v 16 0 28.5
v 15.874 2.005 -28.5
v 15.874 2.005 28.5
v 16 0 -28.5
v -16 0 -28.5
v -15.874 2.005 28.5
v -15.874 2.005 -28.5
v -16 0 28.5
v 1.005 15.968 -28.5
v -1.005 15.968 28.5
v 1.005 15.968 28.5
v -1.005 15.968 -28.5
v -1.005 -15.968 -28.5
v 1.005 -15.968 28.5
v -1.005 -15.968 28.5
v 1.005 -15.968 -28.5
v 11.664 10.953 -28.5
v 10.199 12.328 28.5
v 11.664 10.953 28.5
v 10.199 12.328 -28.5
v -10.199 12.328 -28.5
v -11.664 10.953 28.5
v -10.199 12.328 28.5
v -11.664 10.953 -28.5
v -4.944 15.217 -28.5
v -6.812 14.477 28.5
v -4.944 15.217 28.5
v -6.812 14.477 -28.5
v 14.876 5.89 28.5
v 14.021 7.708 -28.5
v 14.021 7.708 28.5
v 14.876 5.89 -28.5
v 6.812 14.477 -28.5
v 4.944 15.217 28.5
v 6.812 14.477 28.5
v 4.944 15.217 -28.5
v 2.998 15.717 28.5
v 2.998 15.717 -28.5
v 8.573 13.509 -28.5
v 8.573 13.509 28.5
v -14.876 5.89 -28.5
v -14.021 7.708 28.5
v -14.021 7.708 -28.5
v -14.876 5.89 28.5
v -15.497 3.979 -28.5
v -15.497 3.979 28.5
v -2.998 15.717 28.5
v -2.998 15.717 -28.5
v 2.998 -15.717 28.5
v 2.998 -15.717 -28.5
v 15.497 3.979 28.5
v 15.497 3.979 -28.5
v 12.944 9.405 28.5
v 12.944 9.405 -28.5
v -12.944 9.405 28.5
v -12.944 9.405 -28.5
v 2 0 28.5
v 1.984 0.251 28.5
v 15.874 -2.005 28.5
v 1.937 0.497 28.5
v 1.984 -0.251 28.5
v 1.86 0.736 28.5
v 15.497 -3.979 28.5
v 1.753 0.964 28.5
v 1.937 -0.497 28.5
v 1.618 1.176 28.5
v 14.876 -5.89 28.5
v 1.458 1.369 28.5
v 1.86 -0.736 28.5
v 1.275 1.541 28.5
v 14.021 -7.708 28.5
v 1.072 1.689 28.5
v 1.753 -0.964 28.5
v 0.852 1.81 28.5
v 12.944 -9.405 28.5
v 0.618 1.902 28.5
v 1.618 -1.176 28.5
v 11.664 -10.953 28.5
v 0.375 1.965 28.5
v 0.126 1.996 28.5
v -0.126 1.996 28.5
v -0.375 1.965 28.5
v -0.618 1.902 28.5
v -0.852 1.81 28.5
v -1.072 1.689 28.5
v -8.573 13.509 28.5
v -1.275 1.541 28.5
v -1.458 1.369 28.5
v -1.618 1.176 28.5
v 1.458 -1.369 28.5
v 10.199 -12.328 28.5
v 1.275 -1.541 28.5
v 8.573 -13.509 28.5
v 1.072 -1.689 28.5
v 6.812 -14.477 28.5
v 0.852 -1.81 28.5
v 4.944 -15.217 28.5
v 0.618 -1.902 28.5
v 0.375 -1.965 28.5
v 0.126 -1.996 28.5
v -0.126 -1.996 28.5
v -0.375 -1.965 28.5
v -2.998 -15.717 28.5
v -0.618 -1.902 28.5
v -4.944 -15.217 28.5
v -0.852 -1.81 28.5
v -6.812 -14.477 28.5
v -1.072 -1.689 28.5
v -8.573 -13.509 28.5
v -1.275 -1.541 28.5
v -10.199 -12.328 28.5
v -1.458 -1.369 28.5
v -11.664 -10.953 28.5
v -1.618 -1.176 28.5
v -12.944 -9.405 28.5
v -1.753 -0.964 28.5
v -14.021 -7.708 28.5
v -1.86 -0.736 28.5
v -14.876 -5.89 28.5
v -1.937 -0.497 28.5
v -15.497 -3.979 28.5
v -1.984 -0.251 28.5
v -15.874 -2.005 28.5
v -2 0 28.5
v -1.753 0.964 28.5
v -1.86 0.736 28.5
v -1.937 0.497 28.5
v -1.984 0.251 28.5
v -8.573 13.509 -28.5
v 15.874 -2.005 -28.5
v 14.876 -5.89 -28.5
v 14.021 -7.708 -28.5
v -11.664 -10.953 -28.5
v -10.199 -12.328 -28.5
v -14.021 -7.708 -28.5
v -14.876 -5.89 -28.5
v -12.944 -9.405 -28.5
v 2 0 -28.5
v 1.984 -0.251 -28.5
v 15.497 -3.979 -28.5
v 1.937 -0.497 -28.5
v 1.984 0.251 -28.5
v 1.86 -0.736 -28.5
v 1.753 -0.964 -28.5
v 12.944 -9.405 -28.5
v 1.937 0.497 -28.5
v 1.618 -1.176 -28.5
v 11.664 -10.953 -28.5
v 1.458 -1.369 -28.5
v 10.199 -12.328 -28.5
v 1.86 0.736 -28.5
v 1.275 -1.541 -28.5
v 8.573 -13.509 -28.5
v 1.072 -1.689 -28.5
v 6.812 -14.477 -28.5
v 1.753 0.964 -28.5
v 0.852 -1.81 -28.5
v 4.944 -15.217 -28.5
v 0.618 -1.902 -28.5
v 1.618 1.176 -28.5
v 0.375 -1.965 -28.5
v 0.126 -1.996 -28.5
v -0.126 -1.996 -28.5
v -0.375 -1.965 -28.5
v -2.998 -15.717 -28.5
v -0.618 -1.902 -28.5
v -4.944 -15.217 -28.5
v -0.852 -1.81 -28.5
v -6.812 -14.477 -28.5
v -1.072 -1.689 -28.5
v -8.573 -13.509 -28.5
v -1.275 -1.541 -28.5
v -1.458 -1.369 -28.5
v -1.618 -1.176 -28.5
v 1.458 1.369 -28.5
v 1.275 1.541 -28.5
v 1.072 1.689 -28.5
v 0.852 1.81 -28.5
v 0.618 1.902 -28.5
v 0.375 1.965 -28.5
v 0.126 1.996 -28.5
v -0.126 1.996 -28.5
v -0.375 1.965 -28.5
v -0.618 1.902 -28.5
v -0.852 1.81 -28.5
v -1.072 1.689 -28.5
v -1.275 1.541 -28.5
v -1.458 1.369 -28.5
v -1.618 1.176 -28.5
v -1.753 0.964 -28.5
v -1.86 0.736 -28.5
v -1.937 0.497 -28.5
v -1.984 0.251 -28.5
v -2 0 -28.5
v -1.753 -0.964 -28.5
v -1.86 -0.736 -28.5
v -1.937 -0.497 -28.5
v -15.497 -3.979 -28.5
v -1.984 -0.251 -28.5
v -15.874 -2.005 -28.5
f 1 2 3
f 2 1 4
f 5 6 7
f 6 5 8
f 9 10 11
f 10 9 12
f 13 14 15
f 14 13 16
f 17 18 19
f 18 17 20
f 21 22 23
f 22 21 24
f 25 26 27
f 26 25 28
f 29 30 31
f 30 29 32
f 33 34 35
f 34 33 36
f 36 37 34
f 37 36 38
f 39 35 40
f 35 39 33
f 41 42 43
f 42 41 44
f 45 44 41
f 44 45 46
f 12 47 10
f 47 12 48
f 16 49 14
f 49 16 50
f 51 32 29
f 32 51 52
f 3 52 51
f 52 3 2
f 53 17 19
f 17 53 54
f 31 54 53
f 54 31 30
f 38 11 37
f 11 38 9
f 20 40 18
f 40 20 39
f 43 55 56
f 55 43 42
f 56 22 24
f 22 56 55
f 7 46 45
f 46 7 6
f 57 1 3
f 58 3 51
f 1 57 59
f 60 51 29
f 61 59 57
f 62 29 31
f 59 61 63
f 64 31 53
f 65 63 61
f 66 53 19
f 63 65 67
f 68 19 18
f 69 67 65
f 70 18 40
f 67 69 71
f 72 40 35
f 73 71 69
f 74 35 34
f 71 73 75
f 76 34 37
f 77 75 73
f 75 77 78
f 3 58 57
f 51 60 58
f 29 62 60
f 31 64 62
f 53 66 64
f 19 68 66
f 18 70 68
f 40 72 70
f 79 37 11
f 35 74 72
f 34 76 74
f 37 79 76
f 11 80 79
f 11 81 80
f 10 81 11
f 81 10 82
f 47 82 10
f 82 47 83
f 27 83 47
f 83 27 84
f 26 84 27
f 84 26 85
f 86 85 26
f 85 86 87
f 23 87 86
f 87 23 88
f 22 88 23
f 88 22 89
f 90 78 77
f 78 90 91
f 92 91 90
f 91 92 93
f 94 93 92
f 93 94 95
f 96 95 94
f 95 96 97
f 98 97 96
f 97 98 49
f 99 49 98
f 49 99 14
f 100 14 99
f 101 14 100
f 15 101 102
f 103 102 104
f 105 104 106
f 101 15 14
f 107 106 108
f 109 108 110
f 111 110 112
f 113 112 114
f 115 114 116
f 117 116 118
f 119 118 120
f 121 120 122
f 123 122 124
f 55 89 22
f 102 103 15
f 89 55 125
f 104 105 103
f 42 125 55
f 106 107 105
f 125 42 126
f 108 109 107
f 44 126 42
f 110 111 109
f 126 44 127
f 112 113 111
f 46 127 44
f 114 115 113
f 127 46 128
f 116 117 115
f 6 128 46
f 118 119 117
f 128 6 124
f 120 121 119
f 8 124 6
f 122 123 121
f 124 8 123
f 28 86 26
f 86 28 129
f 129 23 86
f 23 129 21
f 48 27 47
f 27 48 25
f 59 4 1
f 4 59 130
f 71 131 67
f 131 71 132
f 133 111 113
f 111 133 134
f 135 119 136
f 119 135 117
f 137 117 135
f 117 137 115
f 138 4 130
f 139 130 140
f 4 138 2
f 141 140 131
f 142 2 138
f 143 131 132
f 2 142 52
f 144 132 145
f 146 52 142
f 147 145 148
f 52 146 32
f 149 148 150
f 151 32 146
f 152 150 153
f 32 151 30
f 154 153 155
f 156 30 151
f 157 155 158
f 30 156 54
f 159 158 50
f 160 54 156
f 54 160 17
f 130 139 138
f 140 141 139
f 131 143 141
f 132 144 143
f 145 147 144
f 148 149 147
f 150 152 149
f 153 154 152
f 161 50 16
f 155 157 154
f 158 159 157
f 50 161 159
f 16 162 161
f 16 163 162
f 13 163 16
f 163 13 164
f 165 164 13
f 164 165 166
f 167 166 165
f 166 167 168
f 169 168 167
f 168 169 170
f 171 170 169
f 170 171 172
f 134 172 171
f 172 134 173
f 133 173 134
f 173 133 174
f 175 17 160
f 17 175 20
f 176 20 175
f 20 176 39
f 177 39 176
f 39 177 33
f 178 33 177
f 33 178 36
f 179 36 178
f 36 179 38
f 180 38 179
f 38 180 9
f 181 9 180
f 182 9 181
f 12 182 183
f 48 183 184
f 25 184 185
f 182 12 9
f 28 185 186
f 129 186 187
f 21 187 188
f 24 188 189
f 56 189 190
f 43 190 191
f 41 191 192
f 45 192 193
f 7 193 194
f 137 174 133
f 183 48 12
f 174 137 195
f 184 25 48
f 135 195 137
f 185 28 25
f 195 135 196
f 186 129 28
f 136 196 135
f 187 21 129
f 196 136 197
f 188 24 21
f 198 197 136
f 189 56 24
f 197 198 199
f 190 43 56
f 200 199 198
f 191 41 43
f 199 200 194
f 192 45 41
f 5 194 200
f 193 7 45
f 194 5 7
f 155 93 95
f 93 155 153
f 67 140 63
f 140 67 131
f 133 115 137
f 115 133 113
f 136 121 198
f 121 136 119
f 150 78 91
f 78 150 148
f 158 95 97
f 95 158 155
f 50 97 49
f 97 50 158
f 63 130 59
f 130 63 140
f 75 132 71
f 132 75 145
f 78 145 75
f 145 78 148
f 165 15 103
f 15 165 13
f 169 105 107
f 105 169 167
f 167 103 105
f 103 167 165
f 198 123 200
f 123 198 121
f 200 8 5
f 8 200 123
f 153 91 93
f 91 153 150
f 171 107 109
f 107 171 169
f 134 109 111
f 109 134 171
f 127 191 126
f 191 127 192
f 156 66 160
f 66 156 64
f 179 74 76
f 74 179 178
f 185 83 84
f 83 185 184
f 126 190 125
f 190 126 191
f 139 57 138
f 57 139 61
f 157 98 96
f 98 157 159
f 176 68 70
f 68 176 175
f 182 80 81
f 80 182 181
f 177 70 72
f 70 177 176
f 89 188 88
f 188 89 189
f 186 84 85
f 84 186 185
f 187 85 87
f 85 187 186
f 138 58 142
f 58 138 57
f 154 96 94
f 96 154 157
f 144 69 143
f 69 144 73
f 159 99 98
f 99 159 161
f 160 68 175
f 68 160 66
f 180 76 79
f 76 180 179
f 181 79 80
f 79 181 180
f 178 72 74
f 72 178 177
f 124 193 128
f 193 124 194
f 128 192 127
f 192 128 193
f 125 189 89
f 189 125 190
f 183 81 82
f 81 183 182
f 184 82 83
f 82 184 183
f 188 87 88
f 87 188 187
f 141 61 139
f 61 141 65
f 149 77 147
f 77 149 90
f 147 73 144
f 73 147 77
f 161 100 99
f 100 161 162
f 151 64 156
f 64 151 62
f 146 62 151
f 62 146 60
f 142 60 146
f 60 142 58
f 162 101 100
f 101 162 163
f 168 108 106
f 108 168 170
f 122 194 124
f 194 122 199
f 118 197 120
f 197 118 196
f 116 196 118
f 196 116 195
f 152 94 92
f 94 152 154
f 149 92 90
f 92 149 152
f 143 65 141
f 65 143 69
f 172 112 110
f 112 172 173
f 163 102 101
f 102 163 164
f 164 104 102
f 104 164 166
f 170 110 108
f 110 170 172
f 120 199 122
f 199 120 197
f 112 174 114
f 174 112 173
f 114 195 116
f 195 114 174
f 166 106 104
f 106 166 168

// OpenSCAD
$fn = 50;


difference() {
	union() {
		translate(v = [0, 0, -28.5000000000]) {
			cylinder(h = 57, r = 16.0000000000);
		}
	}
	union() {
		translate(v = [0, 0, -100.0000000000]) {
			cylinder(h = 200, r = 2);
		}
	}
}
